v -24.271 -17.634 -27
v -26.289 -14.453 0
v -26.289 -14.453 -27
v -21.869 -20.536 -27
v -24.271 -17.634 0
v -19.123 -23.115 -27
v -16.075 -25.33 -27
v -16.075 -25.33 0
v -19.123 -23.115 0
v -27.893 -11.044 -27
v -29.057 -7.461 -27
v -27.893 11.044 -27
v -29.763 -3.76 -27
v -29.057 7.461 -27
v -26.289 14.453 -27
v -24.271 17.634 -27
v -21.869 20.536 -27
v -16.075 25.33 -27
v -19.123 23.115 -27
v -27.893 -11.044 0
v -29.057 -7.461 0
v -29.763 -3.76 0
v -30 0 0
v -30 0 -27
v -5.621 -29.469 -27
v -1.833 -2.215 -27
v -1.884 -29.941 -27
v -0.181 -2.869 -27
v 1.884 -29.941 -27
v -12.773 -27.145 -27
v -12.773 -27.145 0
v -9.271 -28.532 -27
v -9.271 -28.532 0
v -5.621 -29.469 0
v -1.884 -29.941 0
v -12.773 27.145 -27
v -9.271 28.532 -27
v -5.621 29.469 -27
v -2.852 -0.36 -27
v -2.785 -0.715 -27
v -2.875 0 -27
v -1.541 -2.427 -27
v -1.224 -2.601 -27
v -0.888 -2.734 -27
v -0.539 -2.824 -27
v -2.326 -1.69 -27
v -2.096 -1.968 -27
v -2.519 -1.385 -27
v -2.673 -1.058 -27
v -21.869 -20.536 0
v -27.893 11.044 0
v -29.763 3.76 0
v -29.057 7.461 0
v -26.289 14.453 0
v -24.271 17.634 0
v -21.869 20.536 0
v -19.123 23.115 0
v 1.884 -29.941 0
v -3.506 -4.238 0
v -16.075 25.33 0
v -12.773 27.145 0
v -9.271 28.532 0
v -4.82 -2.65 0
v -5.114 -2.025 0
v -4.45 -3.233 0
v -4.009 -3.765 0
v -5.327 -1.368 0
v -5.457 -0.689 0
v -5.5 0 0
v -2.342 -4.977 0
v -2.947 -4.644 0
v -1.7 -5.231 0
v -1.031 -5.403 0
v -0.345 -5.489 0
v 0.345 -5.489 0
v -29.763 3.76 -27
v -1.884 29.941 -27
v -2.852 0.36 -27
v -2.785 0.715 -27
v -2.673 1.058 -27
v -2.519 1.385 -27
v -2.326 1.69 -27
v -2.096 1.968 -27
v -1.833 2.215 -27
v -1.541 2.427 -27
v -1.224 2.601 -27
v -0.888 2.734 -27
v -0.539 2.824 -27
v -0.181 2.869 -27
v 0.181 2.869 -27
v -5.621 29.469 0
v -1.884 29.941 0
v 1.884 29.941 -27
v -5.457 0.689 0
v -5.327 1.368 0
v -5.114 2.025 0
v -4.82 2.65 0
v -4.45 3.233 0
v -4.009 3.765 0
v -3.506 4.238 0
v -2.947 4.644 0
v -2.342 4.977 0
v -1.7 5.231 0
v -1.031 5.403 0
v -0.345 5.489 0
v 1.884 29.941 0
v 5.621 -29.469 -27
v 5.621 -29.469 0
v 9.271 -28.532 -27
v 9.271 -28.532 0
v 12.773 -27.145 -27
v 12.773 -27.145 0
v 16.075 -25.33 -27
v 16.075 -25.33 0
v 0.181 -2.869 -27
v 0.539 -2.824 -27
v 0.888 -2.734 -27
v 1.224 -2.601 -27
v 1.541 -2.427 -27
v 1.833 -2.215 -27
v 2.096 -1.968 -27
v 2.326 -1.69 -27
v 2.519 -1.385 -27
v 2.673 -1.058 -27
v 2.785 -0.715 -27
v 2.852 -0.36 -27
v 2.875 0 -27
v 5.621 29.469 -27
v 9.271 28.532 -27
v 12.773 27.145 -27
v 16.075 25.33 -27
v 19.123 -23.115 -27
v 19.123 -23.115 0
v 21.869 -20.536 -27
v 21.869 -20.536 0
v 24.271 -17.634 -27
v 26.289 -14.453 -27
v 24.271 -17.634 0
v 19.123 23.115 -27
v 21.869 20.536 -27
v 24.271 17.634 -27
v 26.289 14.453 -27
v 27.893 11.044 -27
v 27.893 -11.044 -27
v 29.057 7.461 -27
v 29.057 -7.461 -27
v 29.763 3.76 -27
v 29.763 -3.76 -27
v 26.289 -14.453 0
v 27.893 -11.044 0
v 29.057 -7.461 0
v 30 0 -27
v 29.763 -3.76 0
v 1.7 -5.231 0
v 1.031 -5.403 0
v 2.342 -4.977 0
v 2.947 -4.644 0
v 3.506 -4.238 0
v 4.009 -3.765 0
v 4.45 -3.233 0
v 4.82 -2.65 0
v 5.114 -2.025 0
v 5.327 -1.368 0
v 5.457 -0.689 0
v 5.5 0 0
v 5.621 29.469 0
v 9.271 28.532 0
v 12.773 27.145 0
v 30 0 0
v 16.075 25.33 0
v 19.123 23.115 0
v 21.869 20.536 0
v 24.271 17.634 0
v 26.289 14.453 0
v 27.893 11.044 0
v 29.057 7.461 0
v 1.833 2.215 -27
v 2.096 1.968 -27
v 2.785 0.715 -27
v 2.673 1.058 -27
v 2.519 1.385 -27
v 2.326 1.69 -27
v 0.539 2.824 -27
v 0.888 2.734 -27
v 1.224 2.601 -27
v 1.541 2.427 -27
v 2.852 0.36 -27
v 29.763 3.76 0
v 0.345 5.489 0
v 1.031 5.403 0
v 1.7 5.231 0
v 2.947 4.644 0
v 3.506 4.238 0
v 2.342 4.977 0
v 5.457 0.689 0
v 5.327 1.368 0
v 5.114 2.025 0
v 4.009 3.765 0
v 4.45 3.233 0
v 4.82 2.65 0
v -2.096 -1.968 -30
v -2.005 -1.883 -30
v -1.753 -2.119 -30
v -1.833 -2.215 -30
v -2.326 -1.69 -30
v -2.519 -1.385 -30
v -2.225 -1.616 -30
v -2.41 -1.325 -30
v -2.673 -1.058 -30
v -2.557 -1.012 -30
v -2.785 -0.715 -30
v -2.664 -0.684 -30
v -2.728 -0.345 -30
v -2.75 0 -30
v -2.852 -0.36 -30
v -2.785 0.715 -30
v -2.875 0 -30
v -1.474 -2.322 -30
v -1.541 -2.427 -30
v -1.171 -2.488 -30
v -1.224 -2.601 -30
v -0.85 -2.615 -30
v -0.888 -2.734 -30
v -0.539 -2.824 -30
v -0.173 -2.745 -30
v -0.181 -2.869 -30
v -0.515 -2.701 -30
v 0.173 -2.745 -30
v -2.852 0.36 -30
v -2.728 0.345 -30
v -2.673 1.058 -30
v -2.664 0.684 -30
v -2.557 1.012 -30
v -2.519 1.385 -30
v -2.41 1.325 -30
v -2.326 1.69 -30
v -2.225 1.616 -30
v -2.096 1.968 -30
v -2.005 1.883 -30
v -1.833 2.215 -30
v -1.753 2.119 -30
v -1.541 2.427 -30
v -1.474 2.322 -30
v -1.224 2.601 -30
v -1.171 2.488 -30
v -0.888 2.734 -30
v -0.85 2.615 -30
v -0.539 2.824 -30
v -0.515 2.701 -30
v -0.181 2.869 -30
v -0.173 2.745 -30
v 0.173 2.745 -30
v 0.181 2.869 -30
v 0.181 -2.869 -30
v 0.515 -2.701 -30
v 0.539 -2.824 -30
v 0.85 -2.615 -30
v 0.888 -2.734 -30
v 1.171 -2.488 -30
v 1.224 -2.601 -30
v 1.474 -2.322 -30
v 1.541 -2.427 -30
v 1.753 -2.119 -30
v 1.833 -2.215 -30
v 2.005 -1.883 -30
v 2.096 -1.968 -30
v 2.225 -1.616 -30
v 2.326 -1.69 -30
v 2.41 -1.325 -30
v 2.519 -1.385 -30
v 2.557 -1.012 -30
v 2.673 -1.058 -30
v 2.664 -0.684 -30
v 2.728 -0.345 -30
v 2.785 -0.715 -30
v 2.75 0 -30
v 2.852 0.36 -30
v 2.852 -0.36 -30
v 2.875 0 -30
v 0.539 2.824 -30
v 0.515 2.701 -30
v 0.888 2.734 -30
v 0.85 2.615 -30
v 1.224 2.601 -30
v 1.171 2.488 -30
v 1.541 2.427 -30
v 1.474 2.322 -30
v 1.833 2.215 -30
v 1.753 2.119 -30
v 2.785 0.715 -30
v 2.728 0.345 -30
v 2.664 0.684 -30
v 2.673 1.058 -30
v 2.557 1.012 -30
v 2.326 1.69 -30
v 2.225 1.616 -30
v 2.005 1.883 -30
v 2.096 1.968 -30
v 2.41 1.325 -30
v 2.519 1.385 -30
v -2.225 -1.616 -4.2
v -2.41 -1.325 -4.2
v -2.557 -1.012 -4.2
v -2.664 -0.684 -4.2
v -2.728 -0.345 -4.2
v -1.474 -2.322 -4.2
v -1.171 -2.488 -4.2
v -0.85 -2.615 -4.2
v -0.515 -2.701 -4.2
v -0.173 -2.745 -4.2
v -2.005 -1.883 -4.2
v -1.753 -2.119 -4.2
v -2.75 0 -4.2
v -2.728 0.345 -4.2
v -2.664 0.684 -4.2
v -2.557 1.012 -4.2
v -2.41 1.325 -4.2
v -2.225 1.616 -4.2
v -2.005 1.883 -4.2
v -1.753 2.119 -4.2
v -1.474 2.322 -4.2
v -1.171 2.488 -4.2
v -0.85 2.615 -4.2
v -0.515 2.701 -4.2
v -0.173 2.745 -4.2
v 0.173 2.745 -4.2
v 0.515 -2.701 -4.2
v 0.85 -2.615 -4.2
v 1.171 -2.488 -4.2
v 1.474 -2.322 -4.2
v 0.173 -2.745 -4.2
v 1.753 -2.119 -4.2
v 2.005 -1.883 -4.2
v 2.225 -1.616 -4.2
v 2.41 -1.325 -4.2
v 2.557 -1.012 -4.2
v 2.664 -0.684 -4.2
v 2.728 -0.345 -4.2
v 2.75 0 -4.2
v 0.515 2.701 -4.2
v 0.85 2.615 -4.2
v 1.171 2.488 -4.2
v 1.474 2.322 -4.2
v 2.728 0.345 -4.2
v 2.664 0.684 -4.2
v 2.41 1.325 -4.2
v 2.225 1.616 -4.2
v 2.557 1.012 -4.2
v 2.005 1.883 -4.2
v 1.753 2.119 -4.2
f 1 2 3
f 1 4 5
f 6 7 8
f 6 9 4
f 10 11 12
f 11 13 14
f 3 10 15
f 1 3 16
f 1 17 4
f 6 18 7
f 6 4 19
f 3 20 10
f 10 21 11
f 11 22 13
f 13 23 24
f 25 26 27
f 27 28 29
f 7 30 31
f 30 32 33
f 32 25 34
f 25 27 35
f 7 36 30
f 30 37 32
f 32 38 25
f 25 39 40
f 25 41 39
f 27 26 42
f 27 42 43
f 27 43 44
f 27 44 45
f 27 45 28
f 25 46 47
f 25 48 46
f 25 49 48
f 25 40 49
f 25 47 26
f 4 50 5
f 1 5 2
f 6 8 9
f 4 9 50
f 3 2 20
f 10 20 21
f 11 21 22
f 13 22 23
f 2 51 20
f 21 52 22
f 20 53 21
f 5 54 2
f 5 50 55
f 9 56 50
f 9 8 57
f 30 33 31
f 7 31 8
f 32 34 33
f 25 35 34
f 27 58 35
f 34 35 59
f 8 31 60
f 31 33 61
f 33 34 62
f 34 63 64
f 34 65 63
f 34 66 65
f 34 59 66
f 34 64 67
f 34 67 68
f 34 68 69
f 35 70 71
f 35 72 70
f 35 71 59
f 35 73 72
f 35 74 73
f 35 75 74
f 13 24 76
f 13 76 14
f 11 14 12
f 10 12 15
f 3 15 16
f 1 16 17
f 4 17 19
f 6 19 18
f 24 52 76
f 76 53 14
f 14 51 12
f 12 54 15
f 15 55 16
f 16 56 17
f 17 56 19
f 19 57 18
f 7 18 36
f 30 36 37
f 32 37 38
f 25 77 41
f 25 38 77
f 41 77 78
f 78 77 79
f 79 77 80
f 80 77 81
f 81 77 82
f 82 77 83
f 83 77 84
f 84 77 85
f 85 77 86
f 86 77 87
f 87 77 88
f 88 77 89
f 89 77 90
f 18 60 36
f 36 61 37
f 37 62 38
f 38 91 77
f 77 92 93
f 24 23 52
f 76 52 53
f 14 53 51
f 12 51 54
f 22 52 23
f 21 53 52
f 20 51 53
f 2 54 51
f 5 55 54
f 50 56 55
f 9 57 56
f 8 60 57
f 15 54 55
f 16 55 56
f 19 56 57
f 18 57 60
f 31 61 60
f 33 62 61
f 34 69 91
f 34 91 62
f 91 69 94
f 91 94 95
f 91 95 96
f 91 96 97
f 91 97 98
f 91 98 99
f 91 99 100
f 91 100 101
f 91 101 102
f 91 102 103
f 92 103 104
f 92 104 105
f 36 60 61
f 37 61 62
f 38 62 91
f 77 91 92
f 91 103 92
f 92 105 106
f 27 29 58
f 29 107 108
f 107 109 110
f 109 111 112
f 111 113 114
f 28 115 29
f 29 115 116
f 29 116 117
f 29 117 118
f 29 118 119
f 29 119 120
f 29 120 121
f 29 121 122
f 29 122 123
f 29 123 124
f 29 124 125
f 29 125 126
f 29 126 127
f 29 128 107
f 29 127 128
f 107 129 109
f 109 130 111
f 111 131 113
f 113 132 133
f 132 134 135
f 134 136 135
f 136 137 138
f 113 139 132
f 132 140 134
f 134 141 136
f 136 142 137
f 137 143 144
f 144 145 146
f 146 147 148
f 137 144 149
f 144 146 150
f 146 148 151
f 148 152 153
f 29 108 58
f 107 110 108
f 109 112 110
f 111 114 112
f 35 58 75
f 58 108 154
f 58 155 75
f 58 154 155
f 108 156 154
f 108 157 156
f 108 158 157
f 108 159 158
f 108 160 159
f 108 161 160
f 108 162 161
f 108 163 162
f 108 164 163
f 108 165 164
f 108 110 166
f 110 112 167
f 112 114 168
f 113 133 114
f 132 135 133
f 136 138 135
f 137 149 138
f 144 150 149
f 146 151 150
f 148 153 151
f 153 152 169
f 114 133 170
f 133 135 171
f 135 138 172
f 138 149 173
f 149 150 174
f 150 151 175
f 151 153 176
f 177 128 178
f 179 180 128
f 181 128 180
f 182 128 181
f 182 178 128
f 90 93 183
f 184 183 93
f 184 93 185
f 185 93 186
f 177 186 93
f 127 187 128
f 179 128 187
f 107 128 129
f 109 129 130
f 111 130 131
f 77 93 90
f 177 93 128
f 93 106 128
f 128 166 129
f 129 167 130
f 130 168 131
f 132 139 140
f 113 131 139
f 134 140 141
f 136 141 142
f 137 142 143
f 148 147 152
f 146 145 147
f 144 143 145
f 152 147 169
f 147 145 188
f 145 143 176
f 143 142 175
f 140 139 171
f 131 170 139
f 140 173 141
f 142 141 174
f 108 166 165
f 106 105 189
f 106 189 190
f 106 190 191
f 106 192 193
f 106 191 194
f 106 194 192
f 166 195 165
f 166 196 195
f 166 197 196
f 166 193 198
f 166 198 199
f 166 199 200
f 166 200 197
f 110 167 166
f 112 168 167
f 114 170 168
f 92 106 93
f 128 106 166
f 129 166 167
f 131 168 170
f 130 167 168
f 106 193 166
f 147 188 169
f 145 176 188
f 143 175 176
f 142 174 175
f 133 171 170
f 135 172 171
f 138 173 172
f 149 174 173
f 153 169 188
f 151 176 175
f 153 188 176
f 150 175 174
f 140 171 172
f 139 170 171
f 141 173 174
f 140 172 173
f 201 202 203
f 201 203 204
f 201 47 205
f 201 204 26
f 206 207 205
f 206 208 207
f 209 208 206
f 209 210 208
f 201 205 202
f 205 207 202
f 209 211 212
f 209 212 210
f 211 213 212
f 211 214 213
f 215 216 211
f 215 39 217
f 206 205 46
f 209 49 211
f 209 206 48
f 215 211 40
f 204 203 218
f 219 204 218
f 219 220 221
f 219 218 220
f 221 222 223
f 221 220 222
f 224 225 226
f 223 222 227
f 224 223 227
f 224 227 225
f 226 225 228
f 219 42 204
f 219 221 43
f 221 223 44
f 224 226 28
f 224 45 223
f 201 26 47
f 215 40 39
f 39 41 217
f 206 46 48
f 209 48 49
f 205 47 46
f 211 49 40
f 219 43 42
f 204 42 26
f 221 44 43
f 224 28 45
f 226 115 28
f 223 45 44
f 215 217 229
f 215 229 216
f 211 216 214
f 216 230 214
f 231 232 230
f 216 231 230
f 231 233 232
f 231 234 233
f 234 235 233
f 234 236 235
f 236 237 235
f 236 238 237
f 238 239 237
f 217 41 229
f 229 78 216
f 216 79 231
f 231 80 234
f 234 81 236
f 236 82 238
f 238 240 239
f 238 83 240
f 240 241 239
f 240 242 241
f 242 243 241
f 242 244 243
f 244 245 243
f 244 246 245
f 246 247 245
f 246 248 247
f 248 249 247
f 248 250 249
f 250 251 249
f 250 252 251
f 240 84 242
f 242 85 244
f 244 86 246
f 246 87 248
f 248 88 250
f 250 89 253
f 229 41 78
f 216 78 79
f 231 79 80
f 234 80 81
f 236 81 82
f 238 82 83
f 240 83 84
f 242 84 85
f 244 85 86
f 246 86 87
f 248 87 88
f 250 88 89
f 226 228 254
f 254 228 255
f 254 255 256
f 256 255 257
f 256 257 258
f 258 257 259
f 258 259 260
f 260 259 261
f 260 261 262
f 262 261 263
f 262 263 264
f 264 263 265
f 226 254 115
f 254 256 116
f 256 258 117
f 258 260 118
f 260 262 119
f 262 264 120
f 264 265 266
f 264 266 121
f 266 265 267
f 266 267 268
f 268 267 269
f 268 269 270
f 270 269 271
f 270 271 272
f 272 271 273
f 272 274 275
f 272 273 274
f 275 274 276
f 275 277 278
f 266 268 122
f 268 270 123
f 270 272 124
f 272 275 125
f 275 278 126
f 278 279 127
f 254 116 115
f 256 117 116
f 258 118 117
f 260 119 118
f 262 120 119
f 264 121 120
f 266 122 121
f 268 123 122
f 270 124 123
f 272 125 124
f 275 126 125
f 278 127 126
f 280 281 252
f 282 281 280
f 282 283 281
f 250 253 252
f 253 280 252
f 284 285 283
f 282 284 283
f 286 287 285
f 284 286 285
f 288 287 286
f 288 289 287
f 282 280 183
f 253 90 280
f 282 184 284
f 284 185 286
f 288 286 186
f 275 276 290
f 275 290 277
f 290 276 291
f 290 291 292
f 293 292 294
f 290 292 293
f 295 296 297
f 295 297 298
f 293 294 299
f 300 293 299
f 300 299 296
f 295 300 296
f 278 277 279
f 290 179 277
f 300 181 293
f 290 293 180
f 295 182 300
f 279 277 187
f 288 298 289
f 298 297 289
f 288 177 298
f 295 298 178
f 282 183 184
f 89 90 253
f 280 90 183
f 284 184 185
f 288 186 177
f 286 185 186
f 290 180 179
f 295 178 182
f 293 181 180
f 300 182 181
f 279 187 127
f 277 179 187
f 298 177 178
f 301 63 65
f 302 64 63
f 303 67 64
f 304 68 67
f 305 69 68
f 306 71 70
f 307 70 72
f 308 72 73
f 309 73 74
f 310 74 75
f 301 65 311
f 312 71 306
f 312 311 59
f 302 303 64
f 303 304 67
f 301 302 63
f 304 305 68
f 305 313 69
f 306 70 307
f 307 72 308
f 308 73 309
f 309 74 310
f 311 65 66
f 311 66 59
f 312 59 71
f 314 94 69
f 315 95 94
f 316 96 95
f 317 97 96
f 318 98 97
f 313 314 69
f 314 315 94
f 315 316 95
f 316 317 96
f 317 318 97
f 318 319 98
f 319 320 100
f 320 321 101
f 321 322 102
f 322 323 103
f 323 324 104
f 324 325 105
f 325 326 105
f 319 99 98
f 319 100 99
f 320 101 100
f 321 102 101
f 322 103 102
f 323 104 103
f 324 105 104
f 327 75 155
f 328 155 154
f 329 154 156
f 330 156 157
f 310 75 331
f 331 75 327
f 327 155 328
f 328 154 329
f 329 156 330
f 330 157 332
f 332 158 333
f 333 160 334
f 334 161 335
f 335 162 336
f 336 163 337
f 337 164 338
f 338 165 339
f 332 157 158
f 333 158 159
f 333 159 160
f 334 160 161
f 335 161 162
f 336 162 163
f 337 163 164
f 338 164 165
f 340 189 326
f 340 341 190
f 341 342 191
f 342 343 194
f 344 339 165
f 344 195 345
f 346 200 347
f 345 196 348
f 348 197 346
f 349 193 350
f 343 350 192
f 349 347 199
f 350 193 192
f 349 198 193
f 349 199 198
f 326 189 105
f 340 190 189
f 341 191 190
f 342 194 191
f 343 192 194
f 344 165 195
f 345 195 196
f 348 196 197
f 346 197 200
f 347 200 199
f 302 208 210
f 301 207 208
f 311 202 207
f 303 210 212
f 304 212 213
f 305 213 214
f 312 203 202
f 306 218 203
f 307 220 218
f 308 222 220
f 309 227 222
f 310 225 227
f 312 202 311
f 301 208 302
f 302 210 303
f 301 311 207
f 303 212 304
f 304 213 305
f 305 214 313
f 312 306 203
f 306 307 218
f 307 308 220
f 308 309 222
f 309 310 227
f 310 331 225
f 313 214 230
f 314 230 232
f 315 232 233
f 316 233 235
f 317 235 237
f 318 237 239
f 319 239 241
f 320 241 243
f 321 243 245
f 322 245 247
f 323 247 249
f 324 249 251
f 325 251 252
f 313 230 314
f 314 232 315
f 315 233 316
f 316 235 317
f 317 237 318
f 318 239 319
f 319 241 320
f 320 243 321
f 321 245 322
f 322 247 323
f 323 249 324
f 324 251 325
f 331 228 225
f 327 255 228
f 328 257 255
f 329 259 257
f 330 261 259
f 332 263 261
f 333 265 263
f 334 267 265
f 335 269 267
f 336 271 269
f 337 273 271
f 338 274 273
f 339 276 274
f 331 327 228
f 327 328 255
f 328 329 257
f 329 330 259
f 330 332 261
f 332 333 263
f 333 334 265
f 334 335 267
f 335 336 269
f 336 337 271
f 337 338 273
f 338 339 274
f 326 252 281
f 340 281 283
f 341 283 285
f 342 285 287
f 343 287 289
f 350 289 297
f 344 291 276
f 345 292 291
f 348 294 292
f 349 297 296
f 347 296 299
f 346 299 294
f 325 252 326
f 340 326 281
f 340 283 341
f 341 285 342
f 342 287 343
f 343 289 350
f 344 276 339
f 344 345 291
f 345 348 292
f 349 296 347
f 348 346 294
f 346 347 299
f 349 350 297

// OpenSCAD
$fn = 50;


difference() {
	union() {
		translate(v = [0, 0, -27.0000000000]) {
			cylinder(h = 27, r = 30.0000000000);
		}
		#translate(v = [0, 0, -30.0000000000]) {
			cylinder(h = 30, r = 2.8750000000);
		}
	}
	union() {
		translate(v = [0, 0, 0]) {
			rotate(a = [0, 0, 0]) {
				difference() {
					union() {
						translate(v = [0, 0, -30.0000000000]) {
							cylinder(h = 30, r = 2.2500000000);
						}
						translate(v = [0, 0, -4.2000000000]) {
							cylinder(h = 4.2000000000, r1 = 2.7500000000, r2 = 5.5000000000);
						}
						translate(v = [0, 0, -30.0000000000]) {
							cylinder(h = 30, r = 2.7500000000);
						}
						translate(v = [0, 0, -30.0000000000]) {
							cylinder(h = 30, r = 2.2500000000);
						}
					}
					union();
				}
			}
		}
	}
}
